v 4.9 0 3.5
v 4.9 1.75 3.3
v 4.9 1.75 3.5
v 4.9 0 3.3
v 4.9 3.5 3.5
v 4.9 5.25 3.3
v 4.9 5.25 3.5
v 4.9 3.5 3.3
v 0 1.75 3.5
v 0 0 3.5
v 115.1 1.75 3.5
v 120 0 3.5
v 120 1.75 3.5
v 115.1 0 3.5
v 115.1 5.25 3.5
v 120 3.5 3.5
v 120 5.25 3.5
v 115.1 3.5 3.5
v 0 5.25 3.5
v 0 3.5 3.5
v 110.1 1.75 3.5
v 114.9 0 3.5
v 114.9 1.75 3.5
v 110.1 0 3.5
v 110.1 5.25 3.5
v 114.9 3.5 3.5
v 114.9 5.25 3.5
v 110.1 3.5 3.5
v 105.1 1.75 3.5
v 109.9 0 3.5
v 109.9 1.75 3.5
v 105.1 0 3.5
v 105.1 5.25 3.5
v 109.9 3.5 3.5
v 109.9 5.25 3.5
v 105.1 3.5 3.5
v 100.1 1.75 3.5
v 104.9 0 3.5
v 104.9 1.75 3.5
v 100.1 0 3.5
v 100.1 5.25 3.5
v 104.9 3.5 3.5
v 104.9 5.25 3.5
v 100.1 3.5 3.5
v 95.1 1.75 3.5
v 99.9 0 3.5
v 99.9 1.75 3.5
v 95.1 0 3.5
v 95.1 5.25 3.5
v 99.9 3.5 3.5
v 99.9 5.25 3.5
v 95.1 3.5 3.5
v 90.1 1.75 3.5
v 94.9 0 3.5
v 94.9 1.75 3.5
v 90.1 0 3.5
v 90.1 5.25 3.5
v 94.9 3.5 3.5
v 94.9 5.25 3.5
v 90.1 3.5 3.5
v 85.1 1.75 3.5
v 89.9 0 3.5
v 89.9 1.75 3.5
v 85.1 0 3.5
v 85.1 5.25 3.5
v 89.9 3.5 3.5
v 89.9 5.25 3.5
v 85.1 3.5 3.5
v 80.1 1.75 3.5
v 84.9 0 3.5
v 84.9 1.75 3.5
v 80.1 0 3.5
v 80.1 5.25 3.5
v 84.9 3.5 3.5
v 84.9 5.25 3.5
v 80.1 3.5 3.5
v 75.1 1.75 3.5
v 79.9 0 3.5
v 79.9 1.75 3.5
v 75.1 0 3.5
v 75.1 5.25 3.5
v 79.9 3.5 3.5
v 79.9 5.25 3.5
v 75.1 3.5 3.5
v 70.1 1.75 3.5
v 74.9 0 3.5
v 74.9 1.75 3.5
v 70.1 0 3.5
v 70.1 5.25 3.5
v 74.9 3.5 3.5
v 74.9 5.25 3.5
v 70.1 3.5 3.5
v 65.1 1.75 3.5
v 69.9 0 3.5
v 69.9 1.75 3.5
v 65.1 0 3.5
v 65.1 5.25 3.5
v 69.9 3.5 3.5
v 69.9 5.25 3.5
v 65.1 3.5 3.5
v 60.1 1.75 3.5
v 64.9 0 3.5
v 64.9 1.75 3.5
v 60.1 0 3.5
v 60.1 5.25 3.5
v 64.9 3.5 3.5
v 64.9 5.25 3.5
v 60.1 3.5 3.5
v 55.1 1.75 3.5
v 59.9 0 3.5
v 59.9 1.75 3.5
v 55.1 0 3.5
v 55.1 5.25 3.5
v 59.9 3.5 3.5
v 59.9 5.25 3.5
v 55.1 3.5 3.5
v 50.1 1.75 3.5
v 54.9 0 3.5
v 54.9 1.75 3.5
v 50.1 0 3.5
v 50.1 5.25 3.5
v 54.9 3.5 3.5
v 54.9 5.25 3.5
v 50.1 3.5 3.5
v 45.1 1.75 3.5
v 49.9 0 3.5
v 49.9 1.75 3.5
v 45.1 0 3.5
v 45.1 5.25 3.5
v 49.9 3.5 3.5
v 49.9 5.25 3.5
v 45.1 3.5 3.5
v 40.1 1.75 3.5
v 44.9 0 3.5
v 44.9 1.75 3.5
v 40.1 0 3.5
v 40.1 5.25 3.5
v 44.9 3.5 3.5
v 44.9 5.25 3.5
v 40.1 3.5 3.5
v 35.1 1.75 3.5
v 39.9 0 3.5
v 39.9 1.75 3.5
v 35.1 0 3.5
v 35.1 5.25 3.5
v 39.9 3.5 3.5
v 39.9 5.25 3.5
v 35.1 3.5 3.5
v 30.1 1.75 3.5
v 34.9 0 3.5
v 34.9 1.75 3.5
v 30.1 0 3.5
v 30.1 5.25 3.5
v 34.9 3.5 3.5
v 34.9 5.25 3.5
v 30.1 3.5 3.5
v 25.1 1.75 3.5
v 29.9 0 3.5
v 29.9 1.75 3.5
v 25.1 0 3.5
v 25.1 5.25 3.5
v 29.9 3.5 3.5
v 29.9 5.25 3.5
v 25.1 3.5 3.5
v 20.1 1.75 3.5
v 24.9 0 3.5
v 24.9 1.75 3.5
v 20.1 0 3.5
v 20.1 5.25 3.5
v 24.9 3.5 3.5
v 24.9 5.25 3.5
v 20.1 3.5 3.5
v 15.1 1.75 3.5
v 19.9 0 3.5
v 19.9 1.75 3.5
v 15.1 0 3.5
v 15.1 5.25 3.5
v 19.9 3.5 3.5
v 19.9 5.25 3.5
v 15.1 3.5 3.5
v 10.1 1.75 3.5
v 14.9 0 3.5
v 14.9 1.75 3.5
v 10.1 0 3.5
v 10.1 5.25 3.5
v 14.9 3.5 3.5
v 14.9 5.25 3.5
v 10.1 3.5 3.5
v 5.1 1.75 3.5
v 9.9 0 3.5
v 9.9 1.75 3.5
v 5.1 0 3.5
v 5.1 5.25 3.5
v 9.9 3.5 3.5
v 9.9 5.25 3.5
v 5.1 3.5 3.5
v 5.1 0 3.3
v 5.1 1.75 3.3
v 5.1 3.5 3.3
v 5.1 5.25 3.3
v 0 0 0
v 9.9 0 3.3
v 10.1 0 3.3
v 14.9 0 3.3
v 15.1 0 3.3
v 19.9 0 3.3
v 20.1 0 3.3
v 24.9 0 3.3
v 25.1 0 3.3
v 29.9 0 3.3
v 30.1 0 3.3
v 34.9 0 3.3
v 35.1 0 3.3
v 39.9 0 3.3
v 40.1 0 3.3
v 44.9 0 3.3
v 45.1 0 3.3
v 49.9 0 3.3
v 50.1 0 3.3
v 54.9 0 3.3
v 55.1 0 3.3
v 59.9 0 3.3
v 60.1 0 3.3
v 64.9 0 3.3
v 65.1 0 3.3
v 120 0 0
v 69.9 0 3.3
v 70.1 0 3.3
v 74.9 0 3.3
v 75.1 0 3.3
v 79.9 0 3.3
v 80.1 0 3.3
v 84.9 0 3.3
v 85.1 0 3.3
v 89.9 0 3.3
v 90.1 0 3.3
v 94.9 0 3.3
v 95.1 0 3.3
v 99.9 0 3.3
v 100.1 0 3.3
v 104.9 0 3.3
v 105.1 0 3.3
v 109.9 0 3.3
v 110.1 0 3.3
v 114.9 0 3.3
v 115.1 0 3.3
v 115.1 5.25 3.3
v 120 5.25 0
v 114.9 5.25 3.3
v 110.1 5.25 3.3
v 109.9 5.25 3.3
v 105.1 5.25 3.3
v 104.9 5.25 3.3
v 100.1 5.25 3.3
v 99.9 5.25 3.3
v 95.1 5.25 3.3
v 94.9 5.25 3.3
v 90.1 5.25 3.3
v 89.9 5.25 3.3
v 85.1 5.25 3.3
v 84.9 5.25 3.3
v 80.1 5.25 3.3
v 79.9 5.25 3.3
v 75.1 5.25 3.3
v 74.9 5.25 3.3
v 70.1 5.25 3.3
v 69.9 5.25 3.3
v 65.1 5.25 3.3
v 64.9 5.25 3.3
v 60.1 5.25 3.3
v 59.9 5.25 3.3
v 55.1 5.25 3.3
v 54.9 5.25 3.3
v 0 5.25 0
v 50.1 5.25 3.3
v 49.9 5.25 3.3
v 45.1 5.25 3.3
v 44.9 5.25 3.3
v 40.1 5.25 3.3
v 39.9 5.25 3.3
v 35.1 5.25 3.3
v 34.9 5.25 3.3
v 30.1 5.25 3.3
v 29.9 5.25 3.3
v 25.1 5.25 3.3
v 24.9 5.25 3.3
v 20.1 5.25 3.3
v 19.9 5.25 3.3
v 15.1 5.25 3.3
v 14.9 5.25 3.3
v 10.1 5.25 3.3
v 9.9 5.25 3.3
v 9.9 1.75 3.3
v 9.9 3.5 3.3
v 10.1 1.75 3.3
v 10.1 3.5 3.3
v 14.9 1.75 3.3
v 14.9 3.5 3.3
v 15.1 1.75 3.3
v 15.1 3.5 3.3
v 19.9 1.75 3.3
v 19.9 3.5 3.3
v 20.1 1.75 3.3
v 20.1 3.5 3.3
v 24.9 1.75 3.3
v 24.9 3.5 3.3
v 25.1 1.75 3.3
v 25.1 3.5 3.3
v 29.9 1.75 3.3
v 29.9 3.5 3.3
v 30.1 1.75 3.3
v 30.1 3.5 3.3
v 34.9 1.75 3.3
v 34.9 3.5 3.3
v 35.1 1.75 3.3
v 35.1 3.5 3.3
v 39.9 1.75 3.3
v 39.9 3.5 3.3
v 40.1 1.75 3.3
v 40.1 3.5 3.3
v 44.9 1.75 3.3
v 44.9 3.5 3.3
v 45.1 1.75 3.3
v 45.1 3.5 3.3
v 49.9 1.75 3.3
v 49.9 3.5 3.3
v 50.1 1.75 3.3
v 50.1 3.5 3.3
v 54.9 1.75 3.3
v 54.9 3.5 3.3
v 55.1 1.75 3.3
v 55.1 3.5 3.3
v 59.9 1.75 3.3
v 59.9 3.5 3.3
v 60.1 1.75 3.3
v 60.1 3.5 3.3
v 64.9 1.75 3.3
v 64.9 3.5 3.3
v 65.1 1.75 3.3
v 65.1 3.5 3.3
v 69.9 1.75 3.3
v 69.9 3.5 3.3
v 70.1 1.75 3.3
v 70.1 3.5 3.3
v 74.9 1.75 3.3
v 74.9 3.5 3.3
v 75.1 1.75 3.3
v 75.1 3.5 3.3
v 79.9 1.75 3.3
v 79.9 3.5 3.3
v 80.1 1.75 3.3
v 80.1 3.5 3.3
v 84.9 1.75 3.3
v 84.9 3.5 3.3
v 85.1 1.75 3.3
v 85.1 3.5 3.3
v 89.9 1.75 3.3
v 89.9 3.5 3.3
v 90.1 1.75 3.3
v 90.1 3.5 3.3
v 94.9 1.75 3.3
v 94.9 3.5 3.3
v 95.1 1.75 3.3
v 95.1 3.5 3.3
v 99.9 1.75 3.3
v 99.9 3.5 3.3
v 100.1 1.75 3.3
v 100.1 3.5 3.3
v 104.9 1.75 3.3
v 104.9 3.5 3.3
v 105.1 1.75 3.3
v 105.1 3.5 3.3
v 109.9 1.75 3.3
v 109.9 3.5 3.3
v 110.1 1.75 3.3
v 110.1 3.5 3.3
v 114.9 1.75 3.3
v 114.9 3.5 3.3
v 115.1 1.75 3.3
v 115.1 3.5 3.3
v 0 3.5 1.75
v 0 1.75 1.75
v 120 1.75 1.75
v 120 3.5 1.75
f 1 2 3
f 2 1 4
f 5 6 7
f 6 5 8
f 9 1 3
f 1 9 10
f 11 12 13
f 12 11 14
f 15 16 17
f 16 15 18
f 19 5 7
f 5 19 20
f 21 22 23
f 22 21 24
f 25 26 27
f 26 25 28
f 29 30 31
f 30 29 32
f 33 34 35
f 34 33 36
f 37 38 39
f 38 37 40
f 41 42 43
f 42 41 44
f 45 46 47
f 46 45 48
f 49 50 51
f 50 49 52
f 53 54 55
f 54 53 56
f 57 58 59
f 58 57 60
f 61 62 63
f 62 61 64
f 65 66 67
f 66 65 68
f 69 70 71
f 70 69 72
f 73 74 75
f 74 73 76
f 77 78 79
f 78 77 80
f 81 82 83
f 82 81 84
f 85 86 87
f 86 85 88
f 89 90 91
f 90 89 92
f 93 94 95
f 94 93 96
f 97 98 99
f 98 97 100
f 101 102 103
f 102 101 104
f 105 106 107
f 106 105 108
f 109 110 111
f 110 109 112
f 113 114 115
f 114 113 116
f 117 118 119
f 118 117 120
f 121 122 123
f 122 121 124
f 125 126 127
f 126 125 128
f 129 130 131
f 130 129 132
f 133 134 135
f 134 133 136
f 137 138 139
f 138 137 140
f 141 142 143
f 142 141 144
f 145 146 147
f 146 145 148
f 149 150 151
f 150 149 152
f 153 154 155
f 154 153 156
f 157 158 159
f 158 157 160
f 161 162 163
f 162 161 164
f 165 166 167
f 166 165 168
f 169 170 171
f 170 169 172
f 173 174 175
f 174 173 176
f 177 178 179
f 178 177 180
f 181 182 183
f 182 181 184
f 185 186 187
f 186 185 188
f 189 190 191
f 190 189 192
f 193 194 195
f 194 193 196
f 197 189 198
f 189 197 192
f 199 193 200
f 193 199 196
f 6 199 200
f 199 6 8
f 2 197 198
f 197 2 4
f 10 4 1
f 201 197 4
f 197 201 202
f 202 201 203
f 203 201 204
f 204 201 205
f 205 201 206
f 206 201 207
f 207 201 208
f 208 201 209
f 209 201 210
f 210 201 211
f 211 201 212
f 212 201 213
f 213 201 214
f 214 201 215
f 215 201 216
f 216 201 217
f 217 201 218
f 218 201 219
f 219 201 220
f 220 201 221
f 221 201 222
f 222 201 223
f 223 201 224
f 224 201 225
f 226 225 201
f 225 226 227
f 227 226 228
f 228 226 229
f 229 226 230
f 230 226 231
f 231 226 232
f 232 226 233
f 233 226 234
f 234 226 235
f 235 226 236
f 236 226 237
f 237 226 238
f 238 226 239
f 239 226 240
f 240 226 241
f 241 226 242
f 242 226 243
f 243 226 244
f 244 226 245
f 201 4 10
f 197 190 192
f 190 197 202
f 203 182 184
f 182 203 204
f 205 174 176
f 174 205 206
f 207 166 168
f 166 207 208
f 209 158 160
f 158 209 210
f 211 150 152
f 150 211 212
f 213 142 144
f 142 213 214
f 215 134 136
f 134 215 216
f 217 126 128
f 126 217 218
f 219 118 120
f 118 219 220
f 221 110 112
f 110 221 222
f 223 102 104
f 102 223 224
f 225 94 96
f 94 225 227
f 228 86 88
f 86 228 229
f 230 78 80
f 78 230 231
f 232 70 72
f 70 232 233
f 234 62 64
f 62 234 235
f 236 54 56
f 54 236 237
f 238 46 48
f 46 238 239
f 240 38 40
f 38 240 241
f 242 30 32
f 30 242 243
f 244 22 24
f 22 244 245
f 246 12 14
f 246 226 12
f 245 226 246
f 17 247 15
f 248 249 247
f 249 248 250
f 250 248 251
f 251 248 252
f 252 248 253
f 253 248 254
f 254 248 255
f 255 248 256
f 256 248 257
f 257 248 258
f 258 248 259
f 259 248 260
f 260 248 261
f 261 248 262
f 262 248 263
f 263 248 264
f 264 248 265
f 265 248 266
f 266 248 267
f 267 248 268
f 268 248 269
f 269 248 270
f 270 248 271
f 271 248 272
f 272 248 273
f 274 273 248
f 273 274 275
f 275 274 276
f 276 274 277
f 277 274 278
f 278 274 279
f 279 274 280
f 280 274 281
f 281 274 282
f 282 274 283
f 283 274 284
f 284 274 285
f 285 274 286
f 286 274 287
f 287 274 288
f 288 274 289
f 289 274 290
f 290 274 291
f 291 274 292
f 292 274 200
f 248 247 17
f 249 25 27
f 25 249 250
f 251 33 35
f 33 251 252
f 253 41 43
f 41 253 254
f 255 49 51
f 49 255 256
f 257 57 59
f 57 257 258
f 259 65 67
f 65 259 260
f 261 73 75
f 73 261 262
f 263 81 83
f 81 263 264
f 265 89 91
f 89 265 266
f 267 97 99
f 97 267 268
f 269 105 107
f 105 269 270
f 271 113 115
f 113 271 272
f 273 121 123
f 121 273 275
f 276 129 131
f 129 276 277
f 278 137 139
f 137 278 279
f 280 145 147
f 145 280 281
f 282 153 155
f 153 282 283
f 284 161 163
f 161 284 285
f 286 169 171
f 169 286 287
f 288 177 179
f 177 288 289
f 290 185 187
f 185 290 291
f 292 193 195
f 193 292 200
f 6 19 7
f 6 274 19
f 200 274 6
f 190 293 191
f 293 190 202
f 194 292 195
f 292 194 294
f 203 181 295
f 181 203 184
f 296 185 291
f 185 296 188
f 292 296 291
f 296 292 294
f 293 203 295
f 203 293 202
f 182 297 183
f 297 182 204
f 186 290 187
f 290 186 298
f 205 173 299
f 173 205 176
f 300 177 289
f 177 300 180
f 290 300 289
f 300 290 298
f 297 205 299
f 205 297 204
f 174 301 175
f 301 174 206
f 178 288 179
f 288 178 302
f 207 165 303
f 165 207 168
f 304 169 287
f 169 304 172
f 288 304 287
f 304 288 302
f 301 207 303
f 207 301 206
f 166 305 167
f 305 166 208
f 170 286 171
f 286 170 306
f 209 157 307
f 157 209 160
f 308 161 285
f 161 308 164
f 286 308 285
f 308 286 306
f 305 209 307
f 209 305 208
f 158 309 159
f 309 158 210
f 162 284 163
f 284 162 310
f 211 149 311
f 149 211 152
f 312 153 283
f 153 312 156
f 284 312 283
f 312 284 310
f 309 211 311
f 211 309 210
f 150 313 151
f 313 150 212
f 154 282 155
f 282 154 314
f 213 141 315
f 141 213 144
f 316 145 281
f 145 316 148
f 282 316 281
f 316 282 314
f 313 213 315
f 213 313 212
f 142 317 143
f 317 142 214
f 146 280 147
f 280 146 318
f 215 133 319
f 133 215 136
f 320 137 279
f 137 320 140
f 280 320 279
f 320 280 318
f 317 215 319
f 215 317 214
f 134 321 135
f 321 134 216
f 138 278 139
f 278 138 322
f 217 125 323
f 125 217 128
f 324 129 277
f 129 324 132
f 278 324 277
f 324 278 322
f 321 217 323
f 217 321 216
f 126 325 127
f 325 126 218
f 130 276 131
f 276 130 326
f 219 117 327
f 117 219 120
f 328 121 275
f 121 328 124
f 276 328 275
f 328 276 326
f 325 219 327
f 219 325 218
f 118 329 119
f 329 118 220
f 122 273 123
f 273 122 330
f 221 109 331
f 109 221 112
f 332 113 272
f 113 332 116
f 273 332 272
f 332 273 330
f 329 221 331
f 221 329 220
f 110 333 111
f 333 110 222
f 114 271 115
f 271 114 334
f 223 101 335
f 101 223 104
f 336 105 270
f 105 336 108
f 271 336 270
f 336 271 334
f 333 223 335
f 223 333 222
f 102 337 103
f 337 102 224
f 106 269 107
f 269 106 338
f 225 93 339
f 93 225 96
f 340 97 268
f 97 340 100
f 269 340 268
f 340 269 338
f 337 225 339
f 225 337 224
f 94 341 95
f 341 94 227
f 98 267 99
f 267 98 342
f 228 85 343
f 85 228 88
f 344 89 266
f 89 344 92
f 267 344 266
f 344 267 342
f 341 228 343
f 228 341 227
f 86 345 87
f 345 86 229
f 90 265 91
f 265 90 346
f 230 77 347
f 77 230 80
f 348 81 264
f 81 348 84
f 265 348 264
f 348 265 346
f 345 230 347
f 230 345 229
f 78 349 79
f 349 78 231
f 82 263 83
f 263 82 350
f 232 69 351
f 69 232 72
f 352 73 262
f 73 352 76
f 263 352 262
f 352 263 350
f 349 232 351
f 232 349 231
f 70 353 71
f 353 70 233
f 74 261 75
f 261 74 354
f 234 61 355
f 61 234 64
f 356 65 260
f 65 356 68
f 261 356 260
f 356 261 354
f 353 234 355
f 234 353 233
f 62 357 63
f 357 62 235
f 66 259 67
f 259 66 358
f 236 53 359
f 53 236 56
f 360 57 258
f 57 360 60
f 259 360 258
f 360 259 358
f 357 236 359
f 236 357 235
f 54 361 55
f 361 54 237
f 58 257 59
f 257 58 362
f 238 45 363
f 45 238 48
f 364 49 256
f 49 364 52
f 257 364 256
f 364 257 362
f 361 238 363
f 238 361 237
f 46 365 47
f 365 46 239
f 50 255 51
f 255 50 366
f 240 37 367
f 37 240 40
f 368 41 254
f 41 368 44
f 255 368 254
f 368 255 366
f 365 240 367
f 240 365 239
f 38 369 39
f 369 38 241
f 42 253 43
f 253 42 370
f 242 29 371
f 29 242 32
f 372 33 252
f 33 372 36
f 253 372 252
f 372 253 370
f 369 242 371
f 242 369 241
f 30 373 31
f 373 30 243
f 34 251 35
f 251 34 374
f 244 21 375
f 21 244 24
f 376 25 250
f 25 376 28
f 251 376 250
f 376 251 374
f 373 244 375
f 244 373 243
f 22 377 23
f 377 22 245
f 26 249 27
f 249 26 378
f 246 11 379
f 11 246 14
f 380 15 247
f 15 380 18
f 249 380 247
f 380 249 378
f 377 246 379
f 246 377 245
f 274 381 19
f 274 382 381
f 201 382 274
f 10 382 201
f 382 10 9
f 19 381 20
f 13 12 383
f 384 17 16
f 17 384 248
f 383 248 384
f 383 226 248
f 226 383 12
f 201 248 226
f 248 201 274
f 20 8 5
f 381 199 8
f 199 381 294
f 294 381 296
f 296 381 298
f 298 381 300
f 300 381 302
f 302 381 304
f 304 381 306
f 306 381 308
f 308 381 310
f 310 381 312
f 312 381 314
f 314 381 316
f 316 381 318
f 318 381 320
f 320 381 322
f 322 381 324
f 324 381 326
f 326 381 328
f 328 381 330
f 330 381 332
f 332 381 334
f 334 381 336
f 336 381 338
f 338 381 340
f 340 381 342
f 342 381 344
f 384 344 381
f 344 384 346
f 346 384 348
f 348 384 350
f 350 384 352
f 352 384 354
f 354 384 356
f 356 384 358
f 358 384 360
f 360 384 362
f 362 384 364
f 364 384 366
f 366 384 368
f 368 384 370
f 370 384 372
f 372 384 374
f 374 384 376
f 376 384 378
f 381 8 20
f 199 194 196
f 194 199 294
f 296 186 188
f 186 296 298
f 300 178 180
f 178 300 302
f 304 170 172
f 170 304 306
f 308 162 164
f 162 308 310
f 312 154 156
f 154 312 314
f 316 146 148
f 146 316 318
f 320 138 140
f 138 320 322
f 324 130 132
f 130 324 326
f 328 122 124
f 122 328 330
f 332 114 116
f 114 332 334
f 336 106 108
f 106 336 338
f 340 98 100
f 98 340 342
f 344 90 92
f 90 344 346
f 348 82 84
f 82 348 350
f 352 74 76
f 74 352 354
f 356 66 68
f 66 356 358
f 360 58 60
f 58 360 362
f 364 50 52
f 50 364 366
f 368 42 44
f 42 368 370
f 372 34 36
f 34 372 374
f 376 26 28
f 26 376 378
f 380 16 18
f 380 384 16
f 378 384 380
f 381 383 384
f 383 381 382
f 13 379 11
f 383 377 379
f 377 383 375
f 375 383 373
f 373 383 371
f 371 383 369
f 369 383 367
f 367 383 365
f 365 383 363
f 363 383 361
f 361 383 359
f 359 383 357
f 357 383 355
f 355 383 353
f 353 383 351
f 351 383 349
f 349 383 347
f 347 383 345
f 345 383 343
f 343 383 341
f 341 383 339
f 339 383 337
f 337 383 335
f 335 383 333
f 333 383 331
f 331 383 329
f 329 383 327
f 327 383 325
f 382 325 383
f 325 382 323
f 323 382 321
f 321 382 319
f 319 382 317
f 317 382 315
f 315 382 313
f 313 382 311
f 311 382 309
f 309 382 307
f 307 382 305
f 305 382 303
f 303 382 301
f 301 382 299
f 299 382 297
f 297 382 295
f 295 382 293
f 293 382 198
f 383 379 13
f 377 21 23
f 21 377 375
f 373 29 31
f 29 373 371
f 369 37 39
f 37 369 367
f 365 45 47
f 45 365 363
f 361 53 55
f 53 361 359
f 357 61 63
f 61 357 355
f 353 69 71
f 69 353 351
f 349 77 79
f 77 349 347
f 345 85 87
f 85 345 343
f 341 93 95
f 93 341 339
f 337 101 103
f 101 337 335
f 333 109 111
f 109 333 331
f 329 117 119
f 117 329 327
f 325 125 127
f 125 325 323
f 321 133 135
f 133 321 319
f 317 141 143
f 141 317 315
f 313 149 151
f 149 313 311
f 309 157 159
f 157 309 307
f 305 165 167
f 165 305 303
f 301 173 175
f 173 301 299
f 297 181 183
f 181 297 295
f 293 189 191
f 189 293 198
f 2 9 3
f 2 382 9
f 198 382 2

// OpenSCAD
f=1.75;  //filament diameter
l=120;  //length of tube
w=f*3;
h=f*2;
tick = 0.2;
s=5;

difference() {
    translate([0,0,0]) cube([l,w,h]);
    translate([0,(w-f)/2,h-f]) cube([l,f,f]);
    for (a =[s:s:l-s]) {
       # translate([a-tick/2, 0, h-tick]) cube([tick, w, tick]);
    }
}
